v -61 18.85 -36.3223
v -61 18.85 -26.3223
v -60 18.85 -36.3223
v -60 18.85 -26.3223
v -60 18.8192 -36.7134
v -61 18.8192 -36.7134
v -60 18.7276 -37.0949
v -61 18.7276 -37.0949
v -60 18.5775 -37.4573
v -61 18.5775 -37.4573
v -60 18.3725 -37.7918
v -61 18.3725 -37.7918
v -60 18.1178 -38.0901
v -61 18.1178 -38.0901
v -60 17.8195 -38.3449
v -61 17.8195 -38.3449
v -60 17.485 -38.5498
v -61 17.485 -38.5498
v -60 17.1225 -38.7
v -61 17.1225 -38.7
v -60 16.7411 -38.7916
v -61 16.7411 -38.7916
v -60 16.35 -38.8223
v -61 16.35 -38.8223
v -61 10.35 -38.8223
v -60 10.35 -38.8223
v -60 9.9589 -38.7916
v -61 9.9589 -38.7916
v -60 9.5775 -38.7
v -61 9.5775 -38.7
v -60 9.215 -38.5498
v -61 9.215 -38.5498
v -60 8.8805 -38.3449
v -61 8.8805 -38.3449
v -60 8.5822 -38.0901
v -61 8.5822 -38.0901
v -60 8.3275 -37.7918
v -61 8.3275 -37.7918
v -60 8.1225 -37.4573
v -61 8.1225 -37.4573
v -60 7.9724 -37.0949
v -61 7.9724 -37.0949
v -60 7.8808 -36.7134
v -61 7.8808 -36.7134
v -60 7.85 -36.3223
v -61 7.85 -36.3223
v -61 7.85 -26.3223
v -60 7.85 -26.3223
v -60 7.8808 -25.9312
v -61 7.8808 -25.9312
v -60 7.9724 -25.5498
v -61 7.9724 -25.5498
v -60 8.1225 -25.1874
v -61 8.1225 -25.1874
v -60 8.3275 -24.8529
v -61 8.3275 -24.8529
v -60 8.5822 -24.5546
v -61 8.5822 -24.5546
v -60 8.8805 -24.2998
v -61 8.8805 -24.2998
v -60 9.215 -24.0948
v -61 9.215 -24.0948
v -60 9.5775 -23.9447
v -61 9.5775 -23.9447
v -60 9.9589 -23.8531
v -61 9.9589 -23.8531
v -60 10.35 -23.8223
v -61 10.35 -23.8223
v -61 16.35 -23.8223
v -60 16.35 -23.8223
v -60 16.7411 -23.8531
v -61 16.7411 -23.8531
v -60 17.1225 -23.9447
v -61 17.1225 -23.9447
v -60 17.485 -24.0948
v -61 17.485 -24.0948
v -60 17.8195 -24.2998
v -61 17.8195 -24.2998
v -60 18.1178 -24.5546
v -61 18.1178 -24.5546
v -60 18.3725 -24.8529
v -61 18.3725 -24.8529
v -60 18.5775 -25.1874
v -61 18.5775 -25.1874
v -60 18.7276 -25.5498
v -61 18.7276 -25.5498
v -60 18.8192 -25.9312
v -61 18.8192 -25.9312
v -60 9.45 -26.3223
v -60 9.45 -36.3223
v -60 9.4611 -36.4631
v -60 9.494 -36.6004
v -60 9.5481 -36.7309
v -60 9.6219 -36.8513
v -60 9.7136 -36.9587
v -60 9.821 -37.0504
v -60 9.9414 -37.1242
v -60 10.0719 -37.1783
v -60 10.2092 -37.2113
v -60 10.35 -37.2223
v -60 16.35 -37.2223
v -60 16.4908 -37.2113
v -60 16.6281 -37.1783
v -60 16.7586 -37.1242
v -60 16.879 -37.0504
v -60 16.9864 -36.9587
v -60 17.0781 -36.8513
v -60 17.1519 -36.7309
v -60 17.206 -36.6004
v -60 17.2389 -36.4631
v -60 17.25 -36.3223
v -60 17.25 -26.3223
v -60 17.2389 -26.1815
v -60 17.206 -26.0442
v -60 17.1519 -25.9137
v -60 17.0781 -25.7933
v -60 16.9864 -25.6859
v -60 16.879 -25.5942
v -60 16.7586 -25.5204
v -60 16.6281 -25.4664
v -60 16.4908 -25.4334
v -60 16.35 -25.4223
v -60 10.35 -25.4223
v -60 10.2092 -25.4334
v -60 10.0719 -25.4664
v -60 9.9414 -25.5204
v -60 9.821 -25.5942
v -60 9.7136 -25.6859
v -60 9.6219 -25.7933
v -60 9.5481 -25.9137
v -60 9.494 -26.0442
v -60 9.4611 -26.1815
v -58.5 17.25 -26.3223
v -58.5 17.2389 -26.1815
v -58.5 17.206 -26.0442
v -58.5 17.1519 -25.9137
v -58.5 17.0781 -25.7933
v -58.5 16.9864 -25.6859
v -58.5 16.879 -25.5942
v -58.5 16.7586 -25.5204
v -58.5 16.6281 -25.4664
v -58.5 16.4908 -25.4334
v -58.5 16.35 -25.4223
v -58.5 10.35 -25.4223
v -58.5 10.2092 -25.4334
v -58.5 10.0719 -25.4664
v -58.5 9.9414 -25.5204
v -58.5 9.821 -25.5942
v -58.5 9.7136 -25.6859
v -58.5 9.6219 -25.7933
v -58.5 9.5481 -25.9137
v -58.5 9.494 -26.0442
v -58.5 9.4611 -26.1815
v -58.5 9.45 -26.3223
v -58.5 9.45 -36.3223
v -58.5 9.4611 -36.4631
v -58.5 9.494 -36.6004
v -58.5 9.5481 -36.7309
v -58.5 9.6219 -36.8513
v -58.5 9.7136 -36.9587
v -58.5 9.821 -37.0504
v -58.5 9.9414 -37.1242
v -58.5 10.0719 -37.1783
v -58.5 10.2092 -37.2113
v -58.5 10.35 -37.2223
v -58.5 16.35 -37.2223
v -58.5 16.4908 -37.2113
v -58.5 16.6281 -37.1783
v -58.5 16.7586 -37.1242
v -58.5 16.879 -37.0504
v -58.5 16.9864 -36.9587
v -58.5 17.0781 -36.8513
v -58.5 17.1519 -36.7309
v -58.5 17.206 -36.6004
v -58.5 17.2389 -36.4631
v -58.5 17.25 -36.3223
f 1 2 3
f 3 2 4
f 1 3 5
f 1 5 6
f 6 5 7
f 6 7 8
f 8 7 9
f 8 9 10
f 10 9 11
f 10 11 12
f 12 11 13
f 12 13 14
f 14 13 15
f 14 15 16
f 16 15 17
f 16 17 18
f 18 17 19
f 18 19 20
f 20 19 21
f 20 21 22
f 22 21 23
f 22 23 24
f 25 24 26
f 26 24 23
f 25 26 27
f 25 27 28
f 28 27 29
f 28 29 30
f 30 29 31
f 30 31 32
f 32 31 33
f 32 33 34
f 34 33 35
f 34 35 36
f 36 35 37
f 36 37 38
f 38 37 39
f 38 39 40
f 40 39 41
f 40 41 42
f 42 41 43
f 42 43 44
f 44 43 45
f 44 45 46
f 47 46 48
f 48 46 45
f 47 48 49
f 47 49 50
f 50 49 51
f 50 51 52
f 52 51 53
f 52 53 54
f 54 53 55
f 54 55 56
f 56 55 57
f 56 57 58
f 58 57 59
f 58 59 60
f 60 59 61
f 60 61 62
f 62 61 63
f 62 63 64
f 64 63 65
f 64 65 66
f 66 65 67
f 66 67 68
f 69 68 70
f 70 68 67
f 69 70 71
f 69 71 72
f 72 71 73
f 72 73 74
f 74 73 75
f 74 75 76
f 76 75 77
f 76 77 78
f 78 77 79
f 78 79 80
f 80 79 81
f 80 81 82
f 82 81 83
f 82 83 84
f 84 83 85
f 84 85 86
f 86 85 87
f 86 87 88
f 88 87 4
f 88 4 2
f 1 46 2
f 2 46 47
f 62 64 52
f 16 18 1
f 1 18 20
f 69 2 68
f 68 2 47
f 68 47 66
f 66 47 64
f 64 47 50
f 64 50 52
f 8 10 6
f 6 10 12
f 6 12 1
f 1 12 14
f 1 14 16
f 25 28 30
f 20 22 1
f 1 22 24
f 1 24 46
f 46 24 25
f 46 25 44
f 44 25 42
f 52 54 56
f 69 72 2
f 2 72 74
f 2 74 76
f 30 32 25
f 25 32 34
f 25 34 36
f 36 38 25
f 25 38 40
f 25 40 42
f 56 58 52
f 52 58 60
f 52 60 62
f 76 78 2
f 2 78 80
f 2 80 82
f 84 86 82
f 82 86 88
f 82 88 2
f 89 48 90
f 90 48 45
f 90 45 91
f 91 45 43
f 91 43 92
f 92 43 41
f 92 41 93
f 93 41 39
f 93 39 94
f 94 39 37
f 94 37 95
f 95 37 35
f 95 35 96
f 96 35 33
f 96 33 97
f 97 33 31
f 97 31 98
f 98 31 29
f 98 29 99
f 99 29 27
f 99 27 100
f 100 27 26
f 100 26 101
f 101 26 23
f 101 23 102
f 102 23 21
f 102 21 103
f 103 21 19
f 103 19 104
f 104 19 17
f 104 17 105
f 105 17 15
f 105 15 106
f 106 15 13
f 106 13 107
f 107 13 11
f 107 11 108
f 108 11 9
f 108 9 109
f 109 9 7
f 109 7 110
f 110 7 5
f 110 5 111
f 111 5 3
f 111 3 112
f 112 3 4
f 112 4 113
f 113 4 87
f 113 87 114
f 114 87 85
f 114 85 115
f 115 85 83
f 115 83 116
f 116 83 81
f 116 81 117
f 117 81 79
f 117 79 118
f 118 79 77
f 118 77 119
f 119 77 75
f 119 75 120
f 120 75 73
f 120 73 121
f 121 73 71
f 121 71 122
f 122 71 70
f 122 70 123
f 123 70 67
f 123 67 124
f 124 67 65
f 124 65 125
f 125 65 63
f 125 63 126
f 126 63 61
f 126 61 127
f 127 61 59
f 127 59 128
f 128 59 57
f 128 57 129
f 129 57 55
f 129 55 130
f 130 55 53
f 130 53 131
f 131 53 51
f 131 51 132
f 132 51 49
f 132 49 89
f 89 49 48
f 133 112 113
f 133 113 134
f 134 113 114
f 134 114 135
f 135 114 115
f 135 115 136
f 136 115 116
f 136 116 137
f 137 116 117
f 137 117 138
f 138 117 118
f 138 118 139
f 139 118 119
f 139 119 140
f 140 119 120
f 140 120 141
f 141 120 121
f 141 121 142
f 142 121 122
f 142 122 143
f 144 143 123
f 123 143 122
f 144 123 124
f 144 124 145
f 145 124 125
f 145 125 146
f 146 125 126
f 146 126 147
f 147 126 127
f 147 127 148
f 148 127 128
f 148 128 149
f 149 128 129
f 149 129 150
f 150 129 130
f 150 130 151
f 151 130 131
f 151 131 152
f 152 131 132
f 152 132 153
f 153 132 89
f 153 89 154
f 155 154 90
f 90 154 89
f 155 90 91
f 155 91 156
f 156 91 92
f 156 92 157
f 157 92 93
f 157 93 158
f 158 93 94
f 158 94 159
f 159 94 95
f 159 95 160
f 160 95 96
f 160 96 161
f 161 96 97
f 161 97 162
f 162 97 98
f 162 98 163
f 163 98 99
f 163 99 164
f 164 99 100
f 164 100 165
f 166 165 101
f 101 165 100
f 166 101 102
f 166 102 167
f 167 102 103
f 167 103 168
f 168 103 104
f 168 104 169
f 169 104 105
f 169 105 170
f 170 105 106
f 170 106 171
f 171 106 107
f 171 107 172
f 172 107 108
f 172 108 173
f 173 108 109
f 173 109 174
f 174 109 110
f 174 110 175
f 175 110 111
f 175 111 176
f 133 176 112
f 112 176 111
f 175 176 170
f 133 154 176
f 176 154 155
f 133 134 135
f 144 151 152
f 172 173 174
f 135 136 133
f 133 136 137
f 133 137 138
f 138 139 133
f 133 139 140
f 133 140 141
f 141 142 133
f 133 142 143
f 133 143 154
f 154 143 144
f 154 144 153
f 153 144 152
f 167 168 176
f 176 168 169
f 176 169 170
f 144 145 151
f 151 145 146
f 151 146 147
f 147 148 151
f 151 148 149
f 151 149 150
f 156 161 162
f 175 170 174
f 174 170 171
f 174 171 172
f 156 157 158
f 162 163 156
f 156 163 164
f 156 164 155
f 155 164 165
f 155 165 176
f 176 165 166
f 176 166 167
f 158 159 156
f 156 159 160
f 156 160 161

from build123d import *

# Parameters (mm, degrees)
BOSS_EXTRUDE1_DEPTH = 1
BOSS_EXTRUDE2_DEPTH = 1.5


with BuildPart() as part:
    # Sketch1 → Boss-Extrude1 (new body)
    with BuildSketch(Plane.ZY.offset(60)):
        with BuildLine():
            Line((-36.32233047, 7.85), (-26.32233047, 7.85))
            ThreePointArc((-26.32233047, 7.85), (-24.554563517, 8.582233047), (-23.82233047, 10.35))
            Line((-23.82233047, 10.35), (-23.82233047, 16.35))
            ThreePointArc((-23.82233047, 16.35), (-24.554563517, 18.117766953), (-26.32233047, 18.85))
            Line((-26.32233047, 18.85), (-36.32233047, 18.85))
            ThreePointArc((-36.32233047, 18.85), (-38.090097423, 18.117766953), (-38.82233047, 16.35))
            Line((-38.82233047, 16.35), (-38.82233047, 10.35))
            ThreePointArc((-38.82233047, 10.35), (-38.090097423, 8.582233047), (-36.32233047, 7.85))
        make_face()
    extrude(amount=BOSS_EXTRUDE1_DEPTH)

    # Sketch1<3> → Boss-Extrude2 (add)
    with BuildSketch(Plane.ZY.offset(60)):
        with BuildLine():
            Line((-36.32233047, 9.45), (-26.32233047, 9.45))
            ThreePointArc((-26.32233047, 9.45), (-25.685934367, 9.713603897), (-25.42233047, 10.35))
            Line((-25.42233047, 10.35), (-25.42233047, 16.35))
            ThreePointArc((-25.42233047, 16.35), (-25.685934367, 16.986396103), (-26.32233047, 17.25))
            Line((-26.32233047, 17.25), (-36.32233047, 17.25))
            ThreePointArc((-36.32233047, 17.25), (-36.958726573, 16.986396103), (-37.22233047, 16.35))
            Line((-37.22233047, 16.35), (-37.22233047, 10.35))
            ThreePointArc((-37.22233047, 10.35), (-36.958726573, 9.713603897), (-36.32233047, 9.45))
        make_face()
    extrude(amount=-BOSS_EXTRUDE2_DEPTH)


solid = part.part
